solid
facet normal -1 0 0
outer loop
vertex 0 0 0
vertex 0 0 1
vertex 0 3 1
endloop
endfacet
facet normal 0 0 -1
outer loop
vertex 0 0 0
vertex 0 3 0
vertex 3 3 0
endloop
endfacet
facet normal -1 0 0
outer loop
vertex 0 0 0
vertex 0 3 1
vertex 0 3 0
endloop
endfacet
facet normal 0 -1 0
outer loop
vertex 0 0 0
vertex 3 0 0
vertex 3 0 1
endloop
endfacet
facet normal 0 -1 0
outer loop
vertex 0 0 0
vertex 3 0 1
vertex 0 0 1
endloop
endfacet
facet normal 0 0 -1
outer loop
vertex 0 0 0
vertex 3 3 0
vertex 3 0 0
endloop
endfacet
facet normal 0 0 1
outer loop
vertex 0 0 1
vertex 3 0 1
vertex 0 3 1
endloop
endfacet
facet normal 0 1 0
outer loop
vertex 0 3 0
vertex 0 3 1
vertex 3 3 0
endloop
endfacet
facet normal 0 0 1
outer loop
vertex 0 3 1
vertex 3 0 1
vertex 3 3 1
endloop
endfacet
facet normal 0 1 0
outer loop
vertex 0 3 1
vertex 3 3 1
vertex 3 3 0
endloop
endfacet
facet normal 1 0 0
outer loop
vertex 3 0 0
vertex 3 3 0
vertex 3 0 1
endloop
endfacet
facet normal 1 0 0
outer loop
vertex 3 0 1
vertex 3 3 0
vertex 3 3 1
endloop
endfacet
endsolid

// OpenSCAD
/* Warning, this is a very basic generator with a lot of approximation 
input data : [MSOP, N2B, 3x3mm, 8, , F, C04-00111F]
generated by com.zoubworld.electronics.cad.model3d.Basic
Date : Sun Feb 15 10:50:48 CET 2026
*/

//body
color("black")
translate([0,0,0])
cube([3.0,3.0,1.0], center=false);
